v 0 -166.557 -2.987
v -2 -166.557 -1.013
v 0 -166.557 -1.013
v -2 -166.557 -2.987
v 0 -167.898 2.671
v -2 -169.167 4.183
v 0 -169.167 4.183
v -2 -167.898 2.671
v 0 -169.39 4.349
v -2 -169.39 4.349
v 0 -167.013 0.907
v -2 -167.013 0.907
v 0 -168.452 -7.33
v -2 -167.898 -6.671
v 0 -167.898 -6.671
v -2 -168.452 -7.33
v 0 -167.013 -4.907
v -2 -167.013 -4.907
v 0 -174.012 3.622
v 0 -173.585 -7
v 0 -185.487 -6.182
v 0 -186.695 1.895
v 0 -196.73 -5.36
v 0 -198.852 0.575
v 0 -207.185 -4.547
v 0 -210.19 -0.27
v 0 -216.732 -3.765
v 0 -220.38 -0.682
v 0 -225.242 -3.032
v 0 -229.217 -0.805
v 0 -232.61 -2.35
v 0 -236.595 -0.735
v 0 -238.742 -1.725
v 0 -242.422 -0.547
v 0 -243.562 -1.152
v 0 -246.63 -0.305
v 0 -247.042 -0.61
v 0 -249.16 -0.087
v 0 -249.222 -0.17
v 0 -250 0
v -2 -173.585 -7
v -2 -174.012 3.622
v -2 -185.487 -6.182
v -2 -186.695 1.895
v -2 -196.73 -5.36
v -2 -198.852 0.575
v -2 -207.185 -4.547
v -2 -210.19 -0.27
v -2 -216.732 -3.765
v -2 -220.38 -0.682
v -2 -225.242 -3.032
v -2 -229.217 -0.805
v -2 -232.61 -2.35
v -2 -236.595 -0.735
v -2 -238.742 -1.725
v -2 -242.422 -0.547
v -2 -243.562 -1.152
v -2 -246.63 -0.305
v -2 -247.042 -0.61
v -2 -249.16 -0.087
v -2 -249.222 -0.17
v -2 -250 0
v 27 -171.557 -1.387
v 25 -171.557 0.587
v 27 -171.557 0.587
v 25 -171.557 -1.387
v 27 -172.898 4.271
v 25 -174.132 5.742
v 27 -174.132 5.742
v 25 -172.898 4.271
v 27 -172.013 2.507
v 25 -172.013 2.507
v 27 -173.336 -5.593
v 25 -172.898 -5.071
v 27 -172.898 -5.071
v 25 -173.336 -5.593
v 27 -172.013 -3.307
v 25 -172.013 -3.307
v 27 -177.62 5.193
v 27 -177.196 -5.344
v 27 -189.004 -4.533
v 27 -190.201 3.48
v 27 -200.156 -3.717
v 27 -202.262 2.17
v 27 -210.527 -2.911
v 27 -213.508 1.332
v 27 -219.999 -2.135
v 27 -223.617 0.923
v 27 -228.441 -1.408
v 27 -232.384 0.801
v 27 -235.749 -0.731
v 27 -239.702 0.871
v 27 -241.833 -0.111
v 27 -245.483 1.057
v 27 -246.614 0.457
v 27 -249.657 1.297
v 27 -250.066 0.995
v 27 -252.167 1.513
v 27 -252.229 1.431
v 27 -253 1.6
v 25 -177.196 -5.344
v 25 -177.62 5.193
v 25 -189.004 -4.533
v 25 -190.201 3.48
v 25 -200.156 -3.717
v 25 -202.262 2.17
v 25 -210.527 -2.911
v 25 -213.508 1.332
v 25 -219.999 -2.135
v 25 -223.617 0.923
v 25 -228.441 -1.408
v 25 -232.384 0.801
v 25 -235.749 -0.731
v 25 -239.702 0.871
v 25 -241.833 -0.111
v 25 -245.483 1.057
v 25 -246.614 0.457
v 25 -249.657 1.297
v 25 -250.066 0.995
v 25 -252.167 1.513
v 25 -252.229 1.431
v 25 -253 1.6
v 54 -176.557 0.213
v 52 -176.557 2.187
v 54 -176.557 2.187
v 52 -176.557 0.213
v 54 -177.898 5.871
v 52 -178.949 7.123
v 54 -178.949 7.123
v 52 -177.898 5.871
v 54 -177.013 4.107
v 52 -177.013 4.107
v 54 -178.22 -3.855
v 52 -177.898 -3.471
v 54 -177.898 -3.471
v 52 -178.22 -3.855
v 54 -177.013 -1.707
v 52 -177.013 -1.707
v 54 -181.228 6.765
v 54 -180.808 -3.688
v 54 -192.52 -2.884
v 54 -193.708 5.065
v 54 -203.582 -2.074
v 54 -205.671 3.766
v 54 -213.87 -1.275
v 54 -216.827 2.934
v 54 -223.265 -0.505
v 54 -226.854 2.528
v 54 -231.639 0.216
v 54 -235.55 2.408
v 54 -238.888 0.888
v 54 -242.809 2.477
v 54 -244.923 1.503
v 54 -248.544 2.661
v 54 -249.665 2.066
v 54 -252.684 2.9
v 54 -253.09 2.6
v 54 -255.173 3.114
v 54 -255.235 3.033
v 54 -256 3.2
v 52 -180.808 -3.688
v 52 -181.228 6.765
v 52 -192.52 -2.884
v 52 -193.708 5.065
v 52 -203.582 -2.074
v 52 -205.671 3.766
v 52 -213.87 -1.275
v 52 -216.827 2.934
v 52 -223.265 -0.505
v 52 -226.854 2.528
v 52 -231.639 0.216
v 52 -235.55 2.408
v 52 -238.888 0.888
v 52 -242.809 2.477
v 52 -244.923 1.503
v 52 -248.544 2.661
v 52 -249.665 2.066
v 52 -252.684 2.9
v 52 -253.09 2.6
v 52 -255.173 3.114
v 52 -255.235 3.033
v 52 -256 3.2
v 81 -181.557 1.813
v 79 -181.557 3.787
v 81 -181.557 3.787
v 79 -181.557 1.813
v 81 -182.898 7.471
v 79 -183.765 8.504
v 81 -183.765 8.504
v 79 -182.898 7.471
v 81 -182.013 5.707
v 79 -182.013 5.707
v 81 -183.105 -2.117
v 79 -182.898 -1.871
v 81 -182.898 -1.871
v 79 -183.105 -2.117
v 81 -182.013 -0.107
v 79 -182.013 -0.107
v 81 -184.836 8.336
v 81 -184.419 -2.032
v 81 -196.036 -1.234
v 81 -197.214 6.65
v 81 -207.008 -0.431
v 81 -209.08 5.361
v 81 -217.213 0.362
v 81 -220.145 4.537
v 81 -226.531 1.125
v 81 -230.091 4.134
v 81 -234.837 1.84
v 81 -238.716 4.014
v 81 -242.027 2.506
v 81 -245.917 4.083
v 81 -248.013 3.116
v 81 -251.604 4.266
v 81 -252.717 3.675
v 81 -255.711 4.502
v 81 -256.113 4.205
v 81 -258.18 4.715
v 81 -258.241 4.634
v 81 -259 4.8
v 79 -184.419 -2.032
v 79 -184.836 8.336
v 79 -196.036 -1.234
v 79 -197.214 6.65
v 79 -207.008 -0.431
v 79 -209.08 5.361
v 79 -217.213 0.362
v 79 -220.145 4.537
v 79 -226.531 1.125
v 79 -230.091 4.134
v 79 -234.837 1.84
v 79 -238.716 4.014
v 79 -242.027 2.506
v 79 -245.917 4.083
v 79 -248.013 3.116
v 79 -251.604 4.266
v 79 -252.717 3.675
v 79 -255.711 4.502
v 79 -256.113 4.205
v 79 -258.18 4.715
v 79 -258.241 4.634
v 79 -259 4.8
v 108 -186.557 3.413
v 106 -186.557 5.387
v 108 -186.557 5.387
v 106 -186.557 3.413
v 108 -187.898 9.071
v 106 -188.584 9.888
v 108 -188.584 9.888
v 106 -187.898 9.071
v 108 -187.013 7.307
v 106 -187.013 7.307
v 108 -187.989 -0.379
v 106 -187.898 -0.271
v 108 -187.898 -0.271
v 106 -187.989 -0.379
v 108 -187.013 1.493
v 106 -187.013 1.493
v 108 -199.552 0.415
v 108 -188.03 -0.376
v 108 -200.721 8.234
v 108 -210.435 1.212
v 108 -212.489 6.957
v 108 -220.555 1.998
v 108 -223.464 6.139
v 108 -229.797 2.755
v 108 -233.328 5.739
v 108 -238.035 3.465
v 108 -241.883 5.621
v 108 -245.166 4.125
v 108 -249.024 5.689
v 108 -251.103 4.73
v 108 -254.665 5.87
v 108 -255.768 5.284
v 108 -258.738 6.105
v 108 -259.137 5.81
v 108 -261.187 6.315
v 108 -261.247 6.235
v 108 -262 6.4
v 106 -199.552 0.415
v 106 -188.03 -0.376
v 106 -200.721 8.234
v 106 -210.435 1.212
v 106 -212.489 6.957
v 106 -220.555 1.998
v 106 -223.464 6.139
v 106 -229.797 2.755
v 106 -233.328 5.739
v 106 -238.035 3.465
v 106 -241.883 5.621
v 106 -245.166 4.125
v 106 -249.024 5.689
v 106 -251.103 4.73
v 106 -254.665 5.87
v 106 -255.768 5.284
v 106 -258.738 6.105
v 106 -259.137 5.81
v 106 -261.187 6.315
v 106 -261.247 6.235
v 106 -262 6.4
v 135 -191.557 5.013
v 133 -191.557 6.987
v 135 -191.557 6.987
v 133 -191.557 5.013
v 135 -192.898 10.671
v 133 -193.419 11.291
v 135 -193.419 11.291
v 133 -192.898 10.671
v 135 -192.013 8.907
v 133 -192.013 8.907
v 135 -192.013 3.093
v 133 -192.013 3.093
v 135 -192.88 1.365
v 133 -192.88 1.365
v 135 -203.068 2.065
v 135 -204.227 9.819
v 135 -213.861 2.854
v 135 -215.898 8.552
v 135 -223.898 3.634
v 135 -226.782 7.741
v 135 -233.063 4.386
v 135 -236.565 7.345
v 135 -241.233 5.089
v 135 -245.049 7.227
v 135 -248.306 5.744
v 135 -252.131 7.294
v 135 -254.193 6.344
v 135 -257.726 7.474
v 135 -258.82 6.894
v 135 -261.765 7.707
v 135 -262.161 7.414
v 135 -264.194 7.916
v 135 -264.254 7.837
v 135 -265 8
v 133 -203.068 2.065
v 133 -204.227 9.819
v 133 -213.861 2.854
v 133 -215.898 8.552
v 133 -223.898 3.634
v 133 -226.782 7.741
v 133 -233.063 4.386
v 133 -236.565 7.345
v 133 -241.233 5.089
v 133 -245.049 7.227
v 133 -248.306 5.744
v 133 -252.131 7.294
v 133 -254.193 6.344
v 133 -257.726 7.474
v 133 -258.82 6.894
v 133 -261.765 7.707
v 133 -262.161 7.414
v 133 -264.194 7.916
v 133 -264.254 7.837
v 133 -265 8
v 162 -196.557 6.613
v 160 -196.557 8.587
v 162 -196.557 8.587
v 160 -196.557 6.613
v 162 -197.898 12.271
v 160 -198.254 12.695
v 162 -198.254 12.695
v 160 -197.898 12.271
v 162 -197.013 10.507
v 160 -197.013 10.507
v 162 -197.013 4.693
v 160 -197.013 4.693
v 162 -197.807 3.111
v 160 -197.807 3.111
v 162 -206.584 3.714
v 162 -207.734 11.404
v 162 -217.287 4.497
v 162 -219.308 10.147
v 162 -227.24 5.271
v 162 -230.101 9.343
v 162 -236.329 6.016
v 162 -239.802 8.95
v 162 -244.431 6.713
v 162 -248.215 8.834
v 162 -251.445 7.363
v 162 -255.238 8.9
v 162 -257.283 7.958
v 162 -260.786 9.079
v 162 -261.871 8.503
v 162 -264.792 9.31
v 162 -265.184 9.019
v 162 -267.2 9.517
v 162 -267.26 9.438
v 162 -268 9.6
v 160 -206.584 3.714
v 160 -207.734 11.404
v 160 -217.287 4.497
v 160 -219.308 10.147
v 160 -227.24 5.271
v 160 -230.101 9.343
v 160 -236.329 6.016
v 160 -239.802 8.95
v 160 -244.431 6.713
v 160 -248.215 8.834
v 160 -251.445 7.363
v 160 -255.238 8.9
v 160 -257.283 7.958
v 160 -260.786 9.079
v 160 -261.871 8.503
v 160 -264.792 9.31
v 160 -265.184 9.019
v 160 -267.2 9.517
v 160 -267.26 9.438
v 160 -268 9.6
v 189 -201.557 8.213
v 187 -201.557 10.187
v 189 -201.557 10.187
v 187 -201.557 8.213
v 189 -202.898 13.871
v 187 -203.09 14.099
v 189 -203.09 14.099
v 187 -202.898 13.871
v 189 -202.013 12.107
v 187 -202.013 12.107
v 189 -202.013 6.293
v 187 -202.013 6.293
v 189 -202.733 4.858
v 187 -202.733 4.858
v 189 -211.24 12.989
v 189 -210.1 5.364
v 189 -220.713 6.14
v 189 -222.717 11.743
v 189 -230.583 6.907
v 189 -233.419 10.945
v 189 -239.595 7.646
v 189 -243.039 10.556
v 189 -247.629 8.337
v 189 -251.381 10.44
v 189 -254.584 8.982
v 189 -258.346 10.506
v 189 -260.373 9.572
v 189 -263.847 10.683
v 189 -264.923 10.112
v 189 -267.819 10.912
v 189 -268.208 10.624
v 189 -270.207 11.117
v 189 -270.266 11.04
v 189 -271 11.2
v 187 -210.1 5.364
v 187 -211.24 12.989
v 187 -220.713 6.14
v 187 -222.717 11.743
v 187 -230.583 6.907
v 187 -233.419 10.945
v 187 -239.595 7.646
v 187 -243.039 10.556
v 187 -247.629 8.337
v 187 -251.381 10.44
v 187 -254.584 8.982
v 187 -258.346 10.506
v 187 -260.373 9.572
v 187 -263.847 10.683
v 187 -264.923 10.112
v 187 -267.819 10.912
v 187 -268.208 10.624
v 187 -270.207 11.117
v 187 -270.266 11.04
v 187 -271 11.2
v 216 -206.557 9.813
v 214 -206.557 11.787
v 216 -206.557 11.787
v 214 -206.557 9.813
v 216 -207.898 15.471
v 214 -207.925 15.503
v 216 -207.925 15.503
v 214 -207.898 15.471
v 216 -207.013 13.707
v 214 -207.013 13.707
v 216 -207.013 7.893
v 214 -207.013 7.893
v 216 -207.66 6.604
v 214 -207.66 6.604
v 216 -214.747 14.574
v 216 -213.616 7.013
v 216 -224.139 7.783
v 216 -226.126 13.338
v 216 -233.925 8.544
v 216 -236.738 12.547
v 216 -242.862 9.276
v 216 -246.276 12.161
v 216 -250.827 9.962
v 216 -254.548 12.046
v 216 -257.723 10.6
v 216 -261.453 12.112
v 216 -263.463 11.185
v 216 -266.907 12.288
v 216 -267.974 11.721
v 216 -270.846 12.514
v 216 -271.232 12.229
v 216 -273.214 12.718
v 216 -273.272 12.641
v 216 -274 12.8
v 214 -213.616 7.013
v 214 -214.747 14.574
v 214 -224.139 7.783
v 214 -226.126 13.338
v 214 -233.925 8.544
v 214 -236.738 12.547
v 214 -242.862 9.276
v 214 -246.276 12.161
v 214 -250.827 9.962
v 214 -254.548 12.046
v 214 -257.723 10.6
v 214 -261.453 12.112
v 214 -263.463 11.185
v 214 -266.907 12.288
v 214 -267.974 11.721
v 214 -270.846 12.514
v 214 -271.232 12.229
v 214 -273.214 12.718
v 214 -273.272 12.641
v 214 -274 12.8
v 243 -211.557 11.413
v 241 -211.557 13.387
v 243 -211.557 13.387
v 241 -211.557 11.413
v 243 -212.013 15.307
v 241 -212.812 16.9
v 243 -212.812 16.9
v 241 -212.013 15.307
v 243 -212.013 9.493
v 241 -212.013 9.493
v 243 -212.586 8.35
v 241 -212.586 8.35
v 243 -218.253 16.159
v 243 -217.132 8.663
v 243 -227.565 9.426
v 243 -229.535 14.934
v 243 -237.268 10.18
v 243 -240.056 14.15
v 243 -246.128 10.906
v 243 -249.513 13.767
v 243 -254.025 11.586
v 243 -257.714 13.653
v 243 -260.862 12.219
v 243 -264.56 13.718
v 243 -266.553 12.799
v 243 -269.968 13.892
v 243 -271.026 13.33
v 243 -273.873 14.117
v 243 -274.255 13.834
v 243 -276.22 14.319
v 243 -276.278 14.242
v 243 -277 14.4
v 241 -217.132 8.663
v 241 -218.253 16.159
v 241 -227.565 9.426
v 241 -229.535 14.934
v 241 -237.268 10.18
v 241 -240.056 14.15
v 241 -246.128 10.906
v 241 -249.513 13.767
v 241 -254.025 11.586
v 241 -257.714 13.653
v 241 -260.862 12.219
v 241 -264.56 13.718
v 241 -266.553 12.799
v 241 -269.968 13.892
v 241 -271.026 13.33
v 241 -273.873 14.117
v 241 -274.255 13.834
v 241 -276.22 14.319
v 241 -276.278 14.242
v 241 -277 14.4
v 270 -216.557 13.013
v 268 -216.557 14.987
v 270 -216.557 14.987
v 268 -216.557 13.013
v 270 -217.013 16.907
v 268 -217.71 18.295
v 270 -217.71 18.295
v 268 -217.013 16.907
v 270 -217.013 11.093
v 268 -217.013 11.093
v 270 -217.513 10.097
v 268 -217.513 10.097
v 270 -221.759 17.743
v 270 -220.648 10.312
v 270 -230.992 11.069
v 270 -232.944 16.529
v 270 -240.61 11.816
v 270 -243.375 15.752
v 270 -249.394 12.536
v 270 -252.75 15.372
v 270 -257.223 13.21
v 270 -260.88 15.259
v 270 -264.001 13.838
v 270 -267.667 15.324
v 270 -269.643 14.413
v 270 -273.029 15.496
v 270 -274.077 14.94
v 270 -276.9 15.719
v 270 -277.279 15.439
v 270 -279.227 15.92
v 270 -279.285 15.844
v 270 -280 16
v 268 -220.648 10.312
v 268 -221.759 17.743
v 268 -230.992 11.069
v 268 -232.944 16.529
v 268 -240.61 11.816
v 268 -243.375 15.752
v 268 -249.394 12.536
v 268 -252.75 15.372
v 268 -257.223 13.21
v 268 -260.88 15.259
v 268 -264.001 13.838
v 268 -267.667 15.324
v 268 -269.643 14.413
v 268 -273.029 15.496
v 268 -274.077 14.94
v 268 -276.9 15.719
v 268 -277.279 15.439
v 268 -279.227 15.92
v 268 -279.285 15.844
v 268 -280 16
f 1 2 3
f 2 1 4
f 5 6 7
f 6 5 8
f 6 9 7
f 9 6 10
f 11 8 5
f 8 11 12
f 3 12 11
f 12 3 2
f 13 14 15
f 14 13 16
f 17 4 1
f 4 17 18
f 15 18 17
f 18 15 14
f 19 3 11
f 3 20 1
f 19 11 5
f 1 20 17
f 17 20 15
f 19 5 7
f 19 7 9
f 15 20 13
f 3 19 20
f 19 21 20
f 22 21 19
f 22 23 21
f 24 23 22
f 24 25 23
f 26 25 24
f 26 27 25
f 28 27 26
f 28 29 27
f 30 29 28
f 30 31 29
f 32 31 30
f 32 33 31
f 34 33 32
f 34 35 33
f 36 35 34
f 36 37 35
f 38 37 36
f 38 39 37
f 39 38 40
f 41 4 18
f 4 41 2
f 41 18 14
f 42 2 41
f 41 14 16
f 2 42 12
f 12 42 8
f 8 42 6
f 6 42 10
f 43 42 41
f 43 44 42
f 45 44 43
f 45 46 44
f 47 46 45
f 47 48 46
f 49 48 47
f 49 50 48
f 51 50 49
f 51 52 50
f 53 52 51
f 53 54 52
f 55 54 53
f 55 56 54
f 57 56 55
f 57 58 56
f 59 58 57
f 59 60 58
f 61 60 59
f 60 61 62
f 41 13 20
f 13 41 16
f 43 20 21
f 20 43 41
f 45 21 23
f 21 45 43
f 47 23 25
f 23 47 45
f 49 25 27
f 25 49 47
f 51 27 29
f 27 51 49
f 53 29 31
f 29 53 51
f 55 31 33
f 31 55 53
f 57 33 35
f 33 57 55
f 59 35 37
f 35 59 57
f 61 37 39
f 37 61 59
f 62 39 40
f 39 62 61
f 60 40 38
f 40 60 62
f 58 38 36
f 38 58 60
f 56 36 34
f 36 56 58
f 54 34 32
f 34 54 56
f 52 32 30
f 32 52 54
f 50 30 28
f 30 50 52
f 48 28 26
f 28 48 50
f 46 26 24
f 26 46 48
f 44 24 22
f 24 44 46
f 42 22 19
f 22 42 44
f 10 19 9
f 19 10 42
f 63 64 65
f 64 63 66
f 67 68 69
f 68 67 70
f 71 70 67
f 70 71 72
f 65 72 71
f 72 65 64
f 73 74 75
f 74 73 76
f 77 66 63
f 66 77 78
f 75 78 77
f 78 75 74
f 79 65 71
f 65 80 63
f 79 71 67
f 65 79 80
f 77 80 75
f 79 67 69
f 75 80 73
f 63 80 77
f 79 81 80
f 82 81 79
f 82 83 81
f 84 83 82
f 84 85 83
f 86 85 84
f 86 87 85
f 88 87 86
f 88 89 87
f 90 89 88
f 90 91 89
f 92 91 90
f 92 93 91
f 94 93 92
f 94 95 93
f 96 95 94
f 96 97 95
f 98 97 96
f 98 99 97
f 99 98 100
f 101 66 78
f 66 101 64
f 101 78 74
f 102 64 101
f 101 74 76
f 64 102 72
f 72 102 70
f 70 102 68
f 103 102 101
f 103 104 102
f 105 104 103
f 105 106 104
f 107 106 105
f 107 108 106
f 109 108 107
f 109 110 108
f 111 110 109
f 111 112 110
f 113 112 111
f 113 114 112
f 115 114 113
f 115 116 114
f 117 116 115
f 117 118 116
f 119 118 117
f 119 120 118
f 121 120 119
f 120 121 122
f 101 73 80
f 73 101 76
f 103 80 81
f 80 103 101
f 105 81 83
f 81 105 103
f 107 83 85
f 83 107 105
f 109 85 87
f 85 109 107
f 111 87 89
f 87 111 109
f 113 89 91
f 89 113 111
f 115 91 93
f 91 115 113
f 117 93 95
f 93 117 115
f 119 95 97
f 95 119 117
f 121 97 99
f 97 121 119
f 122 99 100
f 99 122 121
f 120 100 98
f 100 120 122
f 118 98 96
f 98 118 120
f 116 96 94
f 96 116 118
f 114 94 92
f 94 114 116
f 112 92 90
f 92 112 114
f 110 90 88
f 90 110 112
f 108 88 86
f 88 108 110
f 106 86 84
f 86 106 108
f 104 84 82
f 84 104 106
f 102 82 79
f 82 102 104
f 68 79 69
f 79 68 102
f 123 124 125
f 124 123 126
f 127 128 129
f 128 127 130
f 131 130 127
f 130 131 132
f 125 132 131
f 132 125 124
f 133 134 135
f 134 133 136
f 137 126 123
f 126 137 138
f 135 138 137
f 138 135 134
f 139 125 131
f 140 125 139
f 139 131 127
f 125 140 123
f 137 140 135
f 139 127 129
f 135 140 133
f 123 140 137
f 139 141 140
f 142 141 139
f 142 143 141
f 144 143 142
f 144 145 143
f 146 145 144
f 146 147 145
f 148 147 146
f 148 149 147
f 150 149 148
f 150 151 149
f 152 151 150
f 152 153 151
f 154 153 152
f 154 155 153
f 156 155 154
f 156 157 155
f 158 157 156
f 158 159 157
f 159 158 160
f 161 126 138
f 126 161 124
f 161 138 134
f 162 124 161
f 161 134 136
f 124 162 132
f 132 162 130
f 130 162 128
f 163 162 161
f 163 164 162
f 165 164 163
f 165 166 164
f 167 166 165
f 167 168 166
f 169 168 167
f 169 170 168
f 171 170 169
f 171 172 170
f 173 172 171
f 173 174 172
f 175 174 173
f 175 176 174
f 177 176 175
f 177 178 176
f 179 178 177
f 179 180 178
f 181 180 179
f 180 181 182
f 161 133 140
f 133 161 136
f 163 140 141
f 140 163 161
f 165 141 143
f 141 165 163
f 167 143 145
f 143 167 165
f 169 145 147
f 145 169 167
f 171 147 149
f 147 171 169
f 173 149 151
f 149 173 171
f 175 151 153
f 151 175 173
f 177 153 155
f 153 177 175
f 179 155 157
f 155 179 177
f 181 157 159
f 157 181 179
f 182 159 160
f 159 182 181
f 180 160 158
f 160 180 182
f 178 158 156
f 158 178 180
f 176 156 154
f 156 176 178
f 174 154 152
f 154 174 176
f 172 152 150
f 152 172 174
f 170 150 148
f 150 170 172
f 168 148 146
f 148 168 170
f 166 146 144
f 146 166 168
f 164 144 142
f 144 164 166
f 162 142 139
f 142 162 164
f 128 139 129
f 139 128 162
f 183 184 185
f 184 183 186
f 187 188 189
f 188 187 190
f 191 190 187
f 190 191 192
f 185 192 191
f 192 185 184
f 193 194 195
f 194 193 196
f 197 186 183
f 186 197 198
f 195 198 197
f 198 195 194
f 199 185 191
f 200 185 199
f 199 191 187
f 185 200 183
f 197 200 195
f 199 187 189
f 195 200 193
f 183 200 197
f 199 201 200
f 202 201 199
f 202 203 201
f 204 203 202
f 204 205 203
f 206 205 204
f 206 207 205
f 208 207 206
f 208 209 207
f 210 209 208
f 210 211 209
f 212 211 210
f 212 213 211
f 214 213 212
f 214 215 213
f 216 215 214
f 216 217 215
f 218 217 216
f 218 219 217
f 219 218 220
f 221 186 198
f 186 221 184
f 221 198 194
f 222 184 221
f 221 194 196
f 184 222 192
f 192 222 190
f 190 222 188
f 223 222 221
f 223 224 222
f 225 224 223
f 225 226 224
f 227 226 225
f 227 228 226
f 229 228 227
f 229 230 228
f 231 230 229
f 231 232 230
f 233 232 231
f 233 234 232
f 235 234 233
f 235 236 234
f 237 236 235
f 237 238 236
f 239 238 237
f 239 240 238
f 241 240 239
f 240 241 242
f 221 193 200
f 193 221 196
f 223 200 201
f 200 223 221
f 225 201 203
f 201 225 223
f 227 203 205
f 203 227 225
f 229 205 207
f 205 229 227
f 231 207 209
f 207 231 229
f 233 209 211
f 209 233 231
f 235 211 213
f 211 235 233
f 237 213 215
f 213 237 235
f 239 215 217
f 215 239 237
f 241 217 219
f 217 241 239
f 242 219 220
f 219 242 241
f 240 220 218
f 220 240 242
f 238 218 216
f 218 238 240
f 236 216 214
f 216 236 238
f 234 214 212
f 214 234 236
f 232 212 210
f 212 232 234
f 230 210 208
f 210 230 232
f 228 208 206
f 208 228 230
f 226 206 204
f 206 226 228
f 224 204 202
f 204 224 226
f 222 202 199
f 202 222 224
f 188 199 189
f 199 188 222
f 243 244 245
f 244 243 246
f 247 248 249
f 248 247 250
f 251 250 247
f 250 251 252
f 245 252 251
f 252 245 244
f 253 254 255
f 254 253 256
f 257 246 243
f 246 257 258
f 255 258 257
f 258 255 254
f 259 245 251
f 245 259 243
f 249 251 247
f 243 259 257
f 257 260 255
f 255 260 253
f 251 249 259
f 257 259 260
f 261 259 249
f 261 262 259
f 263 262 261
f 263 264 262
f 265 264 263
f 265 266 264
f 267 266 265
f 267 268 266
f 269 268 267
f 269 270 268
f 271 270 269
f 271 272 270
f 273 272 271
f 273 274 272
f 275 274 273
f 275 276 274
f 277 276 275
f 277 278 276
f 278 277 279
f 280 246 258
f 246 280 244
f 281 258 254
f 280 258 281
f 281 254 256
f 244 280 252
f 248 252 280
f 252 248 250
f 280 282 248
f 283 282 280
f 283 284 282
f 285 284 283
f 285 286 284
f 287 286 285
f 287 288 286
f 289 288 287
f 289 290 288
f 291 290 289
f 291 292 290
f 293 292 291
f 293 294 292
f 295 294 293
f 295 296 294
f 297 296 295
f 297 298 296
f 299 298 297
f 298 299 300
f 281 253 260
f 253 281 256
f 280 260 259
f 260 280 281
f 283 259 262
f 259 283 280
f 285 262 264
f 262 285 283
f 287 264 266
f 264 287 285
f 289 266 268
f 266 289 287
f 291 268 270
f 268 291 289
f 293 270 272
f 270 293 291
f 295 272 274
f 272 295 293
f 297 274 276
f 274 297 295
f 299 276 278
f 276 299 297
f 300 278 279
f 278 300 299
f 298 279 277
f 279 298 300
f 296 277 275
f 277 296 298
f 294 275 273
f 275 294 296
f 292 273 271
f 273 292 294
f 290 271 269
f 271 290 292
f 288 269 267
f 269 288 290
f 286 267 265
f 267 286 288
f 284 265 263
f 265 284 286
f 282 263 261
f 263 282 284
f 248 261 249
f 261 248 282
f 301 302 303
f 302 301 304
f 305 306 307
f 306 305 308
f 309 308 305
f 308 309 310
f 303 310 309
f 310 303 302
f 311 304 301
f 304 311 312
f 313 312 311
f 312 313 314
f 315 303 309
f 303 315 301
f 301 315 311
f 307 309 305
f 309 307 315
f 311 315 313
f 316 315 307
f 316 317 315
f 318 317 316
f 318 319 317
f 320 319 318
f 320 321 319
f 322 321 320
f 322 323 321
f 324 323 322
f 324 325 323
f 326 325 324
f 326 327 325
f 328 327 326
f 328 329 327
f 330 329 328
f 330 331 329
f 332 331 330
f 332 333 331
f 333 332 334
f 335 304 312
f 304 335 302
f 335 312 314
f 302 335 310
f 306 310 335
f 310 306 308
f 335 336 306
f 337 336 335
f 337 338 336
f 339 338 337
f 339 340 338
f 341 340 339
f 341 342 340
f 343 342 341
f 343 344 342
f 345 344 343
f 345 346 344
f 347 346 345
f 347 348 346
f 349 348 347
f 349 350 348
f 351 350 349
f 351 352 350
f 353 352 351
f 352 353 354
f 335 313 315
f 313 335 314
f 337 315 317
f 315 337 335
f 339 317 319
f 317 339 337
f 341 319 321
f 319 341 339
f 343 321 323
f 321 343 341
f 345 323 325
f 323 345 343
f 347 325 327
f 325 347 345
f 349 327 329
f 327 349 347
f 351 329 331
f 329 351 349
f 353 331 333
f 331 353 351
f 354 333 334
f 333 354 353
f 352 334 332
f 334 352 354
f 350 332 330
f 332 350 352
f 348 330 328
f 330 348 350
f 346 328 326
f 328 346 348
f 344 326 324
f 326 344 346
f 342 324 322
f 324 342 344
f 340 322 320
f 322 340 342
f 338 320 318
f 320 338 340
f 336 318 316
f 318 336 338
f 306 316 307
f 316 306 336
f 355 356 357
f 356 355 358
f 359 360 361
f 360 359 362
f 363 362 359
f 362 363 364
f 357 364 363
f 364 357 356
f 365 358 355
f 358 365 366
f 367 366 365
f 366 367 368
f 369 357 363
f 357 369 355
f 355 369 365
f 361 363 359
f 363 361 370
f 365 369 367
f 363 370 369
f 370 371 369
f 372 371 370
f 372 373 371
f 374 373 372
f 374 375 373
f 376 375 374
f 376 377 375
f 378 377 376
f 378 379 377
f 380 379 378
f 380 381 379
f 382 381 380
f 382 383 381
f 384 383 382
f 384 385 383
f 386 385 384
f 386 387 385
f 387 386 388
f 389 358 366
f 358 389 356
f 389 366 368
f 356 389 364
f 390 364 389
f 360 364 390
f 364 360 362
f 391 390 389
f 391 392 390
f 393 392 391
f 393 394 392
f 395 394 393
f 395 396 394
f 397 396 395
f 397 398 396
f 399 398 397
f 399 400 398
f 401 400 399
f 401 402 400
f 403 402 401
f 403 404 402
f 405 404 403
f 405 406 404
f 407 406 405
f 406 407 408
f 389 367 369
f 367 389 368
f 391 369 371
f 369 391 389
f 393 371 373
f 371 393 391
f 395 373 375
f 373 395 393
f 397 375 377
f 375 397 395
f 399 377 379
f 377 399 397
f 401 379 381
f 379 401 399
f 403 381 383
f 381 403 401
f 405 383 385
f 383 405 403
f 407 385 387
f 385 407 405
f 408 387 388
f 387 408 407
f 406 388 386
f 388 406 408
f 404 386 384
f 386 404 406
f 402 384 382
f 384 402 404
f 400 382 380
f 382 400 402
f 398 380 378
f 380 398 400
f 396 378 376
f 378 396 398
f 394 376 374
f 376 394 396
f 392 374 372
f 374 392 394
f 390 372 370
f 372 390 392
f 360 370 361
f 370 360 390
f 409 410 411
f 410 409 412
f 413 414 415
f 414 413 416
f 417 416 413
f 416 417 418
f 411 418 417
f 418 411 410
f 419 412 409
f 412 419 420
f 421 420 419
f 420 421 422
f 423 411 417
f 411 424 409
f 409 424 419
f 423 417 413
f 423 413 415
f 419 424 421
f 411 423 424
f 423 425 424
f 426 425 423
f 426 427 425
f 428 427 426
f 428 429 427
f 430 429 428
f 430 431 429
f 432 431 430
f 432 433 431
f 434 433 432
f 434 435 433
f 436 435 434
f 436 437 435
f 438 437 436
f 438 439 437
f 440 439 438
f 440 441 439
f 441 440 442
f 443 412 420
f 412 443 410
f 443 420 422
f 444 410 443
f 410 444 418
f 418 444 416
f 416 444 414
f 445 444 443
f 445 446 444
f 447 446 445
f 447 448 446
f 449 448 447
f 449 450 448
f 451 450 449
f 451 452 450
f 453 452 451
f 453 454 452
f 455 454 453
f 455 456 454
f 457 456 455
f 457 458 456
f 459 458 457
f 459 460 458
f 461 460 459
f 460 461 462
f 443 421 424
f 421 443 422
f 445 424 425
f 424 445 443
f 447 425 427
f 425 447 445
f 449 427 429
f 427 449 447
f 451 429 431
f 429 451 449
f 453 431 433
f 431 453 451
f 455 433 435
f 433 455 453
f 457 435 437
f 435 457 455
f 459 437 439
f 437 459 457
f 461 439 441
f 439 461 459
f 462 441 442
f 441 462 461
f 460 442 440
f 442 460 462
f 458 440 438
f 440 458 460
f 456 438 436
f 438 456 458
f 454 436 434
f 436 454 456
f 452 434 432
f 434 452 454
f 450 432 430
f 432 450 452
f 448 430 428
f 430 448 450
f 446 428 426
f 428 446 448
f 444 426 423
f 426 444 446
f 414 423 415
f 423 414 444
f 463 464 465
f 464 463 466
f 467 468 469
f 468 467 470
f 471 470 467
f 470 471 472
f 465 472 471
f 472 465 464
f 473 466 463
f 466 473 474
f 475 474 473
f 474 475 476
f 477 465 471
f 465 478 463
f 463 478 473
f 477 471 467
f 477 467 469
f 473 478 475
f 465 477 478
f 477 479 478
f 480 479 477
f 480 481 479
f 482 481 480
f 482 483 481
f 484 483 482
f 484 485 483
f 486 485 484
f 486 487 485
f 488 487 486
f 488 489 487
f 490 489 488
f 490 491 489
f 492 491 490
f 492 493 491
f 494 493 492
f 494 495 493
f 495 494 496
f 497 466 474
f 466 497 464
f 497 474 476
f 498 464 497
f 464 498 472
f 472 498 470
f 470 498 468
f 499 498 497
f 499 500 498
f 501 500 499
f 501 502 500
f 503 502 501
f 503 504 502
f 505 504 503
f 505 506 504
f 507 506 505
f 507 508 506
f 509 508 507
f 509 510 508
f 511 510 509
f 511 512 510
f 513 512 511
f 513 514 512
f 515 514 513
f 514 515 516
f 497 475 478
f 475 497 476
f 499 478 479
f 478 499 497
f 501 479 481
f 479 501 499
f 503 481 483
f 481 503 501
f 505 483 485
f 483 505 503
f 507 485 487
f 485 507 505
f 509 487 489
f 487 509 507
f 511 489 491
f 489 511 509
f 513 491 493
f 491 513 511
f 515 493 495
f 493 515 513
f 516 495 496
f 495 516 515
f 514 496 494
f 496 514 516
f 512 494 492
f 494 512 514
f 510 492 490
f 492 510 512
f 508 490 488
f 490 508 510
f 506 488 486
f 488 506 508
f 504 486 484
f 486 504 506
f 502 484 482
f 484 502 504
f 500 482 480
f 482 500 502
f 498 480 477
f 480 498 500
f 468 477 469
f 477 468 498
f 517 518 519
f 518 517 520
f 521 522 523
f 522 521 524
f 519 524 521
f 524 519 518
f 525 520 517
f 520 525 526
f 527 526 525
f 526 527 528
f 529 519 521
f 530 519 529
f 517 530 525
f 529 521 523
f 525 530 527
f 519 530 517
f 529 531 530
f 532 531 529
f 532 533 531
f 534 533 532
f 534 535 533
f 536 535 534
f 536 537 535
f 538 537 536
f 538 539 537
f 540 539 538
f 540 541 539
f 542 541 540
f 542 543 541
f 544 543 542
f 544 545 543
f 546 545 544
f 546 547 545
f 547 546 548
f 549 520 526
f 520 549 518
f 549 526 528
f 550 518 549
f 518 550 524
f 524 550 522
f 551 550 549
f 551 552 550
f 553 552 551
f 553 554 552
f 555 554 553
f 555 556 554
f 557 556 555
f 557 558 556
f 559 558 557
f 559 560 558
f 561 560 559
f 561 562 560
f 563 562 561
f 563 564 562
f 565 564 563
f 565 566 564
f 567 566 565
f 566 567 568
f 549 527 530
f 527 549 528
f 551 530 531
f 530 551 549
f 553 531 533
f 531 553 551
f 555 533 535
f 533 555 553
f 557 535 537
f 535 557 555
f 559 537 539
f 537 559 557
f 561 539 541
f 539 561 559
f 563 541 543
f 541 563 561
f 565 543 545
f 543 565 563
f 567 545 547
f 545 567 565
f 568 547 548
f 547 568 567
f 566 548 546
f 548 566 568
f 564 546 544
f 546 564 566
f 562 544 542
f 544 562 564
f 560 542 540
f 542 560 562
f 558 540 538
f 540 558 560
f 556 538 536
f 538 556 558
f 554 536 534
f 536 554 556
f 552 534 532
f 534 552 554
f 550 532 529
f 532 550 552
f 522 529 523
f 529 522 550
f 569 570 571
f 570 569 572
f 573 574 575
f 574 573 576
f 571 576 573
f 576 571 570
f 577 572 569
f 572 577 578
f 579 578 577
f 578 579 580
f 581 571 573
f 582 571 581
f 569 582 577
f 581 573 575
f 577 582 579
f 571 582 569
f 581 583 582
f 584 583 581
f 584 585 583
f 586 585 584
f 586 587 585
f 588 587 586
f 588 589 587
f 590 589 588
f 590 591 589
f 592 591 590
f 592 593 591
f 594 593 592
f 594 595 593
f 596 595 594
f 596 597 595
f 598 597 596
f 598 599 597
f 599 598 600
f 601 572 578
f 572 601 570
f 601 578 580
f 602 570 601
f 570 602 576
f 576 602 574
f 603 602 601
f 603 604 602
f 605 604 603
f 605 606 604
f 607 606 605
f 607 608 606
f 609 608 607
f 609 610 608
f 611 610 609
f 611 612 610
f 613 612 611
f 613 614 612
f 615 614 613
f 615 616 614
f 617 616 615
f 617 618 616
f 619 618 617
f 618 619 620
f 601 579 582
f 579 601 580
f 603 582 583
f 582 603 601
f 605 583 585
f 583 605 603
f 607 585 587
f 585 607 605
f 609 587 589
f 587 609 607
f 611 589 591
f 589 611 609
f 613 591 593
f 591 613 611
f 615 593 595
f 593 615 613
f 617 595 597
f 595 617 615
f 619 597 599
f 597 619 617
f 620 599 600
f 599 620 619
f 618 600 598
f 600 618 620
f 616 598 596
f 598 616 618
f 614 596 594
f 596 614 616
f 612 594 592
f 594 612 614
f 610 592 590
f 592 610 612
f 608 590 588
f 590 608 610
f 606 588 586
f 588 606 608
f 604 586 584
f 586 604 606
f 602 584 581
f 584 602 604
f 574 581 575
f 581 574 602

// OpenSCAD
// file: reflexed_aerofoil.scad
module reflexed_aerofoil(height = 30, length = 100, end_length = 100)
{
    length = length/100;
    end_length = end_length/100;
    
    s = end_length/length;
    
    scale([length, length, 1])
        linear_extrude(height = height, scale = s)
            polygon([
                [100.000,  0.000],
                [99.664,  -0.035],
                [98.652,  -0.122],
                [96.969,  -0.219],
                [94.638,  -0.294],
                [91.687,  -0.322],
                [88.152,  -0.273],
                [84.076,  -0.108],
                [79.541,  0.230],
                [74.678,  0.758],
                [69.605,  1.449],
                [64.425,  2.263],
                [59.243,  3.151],
                [54.162,  4.022],
                [49.205,  4.749],
                [44.325,  5.285],
                [39.516,  5.654],
                [34.813,  5.873],
                [30.252,  5.954],
                [25.877,  5.909],
                [21.731,  5.746],
                [17.856,  5.473],
                [14.288,  5.097],
                [11.065,  4.627],
                [8.214,  4.072],
                [5.760,  3.442],
                [3.722,  2.753], 
                [2.116,  2.024],
                [0.950,  1.277],
                [0.231,  0.552],
                [0.000,  -0.064],
                [0.358,  -0.635],
                [1.287,  -1.261],
                [2.691,  -1.898],
                [4.549,  -2.506],
                [6.846,  -3.060],
                [9.567,  -3.538],
                [12.696,  -3.927],
                [16.217,  -4.219],
                [20.105,  -4.417],
                [24.326,  -4.523],
                [28.842,  -4.547],
                [33.607,  -4.496],
                [38.572,  -4.377],
                [43.686,  -4.200],
                [48.892,  -3.976],
                [54.132,  -3.715],
                [59.343,  -3.427],
                [64.464,  -3.120],
                [69.434,  -2.800],
                [74.195,  -2.473],
                [78.692,  -2.144],
                [82.874,  -1.819],
                [86.693,  -1.506],
                [90.097,  -1.213],
                [93.044,  -0.940],
                [95.497,  -0.690],
                [97.425,  -0.461],
                [98.817,  -0.244],
                [99.689,  -0.068],
                [100.000,  0.000]]);
}
// main file
use <reflexed_aerofoil.scad>

rotate([0, 0, -90])
{
union()
{
    start_length = 250;
    
    rotate([90, 0, 0])
    {
        
        for(i = [0 : 10])
        {
            diff = 2;
            translate([i*5.0, i*1.6, -i*27])
                intersection()
                {
                    union()
                    {
                         translate([175, -2, -1])
                            cylinder(300, 8.5, 8.5);
                    
                        translate([175, -20, -1])
                            cube([100, 100, 400]);
                    }
                    reflexed_aerofoil(height=2, length=start_length-(diff*i), 
                                end_length=start_length-(diff*i)); 
                }
        }
    }
}

}
